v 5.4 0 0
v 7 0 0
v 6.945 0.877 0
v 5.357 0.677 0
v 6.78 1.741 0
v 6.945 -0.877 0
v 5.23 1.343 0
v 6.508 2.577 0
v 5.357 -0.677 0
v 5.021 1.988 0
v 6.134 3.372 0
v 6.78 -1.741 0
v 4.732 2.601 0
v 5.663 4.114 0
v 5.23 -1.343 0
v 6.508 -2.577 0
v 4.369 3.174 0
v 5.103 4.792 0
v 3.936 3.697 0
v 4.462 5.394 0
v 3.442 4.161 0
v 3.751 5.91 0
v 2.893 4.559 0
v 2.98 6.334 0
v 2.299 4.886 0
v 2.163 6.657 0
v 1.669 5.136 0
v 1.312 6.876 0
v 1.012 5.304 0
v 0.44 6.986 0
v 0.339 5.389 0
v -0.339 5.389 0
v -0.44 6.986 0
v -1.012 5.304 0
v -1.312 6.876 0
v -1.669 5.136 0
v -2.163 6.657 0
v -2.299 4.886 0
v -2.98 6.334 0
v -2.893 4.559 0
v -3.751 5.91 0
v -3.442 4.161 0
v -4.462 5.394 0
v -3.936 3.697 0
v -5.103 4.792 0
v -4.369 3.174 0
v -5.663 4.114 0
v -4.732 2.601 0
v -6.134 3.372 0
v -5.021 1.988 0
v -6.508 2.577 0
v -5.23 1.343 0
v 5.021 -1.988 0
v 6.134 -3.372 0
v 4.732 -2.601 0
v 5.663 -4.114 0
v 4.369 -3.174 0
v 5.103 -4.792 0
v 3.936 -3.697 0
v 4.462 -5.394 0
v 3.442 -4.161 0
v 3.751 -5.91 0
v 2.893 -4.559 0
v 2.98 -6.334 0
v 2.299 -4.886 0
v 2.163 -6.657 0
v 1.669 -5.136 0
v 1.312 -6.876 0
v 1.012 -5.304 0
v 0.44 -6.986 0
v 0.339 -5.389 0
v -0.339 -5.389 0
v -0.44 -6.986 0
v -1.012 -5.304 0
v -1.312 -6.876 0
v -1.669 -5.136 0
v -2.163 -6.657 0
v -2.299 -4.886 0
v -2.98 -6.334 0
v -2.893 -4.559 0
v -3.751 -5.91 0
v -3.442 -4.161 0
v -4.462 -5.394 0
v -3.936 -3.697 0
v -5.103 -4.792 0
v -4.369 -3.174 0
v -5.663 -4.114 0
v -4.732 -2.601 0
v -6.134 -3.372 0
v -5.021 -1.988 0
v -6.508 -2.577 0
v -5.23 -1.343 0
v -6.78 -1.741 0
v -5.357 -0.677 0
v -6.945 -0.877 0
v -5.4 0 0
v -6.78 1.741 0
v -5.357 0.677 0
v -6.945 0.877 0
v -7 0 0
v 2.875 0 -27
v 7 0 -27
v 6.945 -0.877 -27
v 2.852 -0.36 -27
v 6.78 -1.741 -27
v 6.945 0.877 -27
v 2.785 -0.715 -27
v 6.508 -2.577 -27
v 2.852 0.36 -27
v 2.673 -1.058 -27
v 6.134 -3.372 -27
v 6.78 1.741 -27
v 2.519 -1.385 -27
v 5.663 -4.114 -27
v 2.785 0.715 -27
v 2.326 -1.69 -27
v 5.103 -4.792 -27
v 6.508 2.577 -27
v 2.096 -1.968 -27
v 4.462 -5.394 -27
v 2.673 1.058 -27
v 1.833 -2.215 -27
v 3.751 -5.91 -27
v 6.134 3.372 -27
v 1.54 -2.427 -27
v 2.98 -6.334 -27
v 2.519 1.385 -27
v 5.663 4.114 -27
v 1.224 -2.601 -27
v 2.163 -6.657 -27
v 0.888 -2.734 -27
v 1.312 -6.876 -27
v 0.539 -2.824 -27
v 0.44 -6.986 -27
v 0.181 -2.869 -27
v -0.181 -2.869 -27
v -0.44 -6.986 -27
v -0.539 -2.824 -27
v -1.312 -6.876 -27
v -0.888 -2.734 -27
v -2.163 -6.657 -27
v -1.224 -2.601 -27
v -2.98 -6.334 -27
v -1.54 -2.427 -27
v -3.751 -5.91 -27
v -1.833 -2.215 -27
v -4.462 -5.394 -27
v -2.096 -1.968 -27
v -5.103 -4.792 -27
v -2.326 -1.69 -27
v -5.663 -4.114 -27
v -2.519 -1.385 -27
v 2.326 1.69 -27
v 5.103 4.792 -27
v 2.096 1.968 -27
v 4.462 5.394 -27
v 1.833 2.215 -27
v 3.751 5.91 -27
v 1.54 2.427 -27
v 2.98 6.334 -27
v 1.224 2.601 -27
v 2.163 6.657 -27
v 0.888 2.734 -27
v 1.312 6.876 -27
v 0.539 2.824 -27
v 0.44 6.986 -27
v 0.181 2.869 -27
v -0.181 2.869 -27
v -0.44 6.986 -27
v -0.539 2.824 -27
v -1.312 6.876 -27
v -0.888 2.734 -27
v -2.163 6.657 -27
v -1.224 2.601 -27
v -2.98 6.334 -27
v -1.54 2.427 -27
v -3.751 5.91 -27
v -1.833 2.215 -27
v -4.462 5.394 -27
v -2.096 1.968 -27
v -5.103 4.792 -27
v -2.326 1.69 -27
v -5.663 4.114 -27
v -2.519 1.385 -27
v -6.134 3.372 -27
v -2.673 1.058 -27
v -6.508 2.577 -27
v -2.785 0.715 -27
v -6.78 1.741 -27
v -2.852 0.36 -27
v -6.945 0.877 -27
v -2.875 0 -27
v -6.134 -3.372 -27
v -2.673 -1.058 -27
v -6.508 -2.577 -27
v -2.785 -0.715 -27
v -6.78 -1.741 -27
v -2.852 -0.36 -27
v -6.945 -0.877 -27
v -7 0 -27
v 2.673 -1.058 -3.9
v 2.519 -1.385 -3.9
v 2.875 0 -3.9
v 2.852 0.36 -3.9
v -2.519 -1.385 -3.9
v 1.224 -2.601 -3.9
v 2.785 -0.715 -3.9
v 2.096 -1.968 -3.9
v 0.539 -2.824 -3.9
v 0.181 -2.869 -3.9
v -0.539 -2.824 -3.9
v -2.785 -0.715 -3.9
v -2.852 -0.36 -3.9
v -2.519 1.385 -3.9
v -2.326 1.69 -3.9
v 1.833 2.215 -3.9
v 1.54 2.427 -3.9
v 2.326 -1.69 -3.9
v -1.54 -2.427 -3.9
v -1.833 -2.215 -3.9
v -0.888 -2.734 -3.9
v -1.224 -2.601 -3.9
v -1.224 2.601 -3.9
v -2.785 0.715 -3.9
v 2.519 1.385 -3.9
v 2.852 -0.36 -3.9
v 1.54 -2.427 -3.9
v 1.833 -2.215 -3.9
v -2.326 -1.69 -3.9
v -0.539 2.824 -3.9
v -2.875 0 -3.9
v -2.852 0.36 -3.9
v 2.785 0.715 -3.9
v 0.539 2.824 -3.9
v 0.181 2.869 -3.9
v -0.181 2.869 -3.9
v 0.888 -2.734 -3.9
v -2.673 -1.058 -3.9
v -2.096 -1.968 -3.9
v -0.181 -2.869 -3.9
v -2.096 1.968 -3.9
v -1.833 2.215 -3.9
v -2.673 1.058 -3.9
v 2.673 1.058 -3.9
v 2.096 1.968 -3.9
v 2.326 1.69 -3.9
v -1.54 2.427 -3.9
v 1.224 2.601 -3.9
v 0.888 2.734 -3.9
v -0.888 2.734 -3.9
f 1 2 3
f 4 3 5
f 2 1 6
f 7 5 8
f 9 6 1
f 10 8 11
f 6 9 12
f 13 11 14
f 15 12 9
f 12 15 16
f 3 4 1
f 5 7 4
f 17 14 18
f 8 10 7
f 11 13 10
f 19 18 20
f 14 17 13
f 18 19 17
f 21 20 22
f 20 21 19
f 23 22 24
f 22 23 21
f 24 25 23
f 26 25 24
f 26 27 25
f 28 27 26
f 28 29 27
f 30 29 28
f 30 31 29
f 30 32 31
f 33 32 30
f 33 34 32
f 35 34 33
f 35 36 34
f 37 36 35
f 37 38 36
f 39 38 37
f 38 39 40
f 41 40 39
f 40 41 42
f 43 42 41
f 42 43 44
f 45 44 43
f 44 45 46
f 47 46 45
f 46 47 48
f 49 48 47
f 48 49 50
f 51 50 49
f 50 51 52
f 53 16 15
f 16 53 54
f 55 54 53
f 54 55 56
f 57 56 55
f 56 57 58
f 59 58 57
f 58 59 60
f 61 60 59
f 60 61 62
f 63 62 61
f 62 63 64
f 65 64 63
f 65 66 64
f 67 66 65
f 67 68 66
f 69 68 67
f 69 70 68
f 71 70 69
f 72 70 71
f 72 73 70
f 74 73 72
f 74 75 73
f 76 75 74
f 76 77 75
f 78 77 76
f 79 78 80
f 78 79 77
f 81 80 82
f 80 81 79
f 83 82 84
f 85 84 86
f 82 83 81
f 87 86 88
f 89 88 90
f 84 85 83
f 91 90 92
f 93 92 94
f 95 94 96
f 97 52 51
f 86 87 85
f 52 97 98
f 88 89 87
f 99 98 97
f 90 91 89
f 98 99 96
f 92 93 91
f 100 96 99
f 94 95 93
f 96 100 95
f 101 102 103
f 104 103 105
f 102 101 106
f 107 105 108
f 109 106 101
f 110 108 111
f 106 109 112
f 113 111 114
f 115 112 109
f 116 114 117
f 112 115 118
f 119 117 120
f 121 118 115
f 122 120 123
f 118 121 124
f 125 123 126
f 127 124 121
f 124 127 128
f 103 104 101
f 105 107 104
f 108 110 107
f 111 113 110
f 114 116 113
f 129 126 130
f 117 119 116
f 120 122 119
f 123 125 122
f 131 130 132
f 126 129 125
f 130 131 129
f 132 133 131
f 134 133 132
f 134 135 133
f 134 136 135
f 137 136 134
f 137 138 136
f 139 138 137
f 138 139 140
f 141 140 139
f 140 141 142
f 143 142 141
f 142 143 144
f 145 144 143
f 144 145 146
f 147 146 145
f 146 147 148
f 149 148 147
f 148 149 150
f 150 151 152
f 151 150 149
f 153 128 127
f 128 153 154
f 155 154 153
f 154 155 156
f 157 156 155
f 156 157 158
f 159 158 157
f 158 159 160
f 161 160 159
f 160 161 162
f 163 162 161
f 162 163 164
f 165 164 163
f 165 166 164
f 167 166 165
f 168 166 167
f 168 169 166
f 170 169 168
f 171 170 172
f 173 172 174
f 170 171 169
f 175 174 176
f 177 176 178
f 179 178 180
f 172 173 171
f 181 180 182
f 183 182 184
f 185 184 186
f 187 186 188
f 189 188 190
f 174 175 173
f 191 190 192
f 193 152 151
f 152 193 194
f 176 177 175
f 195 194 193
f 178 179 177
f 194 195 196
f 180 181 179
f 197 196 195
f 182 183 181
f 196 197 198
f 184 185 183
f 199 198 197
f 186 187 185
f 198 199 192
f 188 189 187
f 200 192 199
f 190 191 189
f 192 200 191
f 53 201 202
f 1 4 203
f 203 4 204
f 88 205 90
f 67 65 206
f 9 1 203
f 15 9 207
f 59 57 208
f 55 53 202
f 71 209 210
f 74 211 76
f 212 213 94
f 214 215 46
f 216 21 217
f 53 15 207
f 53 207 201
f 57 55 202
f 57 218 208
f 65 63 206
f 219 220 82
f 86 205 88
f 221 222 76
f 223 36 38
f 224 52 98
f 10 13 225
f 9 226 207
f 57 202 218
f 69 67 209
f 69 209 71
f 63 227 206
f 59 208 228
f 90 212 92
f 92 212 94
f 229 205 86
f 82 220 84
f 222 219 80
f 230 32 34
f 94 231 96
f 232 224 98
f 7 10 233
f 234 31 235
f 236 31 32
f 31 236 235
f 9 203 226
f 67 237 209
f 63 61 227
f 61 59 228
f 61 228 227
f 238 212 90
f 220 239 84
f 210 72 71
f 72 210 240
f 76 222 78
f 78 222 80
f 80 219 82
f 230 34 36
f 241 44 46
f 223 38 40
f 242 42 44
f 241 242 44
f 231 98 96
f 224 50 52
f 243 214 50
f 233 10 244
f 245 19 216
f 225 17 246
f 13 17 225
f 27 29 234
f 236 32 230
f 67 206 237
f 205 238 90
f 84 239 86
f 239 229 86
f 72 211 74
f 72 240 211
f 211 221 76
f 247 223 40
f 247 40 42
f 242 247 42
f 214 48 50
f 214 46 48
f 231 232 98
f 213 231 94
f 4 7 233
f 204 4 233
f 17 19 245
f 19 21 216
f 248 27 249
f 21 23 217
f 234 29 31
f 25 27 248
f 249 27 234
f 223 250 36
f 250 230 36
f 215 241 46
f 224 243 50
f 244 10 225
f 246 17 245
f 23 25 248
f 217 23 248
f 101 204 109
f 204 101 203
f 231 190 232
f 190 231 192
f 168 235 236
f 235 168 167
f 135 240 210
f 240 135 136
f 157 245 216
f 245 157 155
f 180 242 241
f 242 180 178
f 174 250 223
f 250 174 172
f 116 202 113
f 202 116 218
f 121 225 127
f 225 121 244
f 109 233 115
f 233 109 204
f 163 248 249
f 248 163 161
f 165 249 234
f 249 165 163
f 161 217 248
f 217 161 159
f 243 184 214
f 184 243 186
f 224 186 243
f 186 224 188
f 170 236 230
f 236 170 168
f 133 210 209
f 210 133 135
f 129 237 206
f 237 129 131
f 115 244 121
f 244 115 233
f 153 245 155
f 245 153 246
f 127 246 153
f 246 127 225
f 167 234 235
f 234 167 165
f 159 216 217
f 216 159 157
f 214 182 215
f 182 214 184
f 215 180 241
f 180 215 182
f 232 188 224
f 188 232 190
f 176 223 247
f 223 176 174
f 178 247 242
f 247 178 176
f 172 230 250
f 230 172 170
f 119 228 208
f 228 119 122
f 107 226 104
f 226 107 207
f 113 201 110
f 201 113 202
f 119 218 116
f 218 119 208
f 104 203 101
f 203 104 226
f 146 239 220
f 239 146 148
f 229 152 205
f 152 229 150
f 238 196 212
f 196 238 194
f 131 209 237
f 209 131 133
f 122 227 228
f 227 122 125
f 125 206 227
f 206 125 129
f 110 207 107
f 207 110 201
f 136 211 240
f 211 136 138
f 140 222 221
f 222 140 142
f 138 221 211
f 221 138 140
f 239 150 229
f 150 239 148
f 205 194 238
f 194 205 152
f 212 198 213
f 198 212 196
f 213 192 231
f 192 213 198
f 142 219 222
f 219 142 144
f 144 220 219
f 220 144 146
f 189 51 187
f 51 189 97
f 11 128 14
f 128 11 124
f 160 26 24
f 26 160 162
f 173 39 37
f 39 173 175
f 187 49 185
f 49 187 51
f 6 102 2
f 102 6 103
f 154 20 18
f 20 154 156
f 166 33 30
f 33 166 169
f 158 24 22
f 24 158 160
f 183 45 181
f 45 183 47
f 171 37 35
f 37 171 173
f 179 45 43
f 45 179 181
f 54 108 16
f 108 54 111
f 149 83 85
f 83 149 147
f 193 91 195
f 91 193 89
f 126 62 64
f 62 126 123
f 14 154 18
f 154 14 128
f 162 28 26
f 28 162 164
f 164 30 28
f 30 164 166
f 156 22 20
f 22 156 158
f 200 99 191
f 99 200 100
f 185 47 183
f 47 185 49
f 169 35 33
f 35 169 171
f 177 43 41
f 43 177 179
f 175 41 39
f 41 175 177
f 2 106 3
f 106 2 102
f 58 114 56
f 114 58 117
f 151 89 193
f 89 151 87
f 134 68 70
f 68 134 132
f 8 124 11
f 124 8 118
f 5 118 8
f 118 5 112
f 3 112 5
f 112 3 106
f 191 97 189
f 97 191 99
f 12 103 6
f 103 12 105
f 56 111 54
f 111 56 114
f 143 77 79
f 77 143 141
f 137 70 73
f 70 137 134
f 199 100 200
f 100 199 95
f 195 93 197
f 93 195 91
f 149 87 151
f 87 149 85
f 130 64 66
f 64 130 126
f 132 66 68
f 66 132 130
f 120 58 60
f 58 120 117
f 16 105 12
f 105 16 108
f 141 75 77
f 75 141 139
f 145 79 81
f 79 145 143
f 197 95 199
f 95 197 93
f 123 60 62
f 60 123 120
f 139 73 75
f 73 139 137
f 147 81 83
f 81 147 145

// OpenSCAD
$fn = 50;


difference() {
	union() {
		translate(v = [0, 0, -27.0000000000]) {
			cylinder(h = 27, r = 7.0000000000);
		}
		cylinder(h = 0, r = 17.0000000000);
	}
	union() {
		translate(v = [0, 0, 0]) {
			rotate(a = [0, 0, 0]) {
				difference() {
					union() {
						#translate(v = [0, 0, -27.0000000000]) {
							cylinder(h = 27, r = 2.6000000000);
						}
						#translate(v = [0, 0, -3.9000000000]) {
							cylinder(h = 3.9000000000, r = 7.0000000000, r1 = 2.8750000000, r2 = 5.4000000000);
						}
						#translate(v = [0, 0, -27.0000000000]) {
							cylinder(h = 27, r = 2.8750000000);
						}
						#translate(v = [0, 0, -27.0000000000]) {
							cylinder(h = 27, r = 2.6000000000);
						}
					}
					union();
				}
			}
		}
	}
}
